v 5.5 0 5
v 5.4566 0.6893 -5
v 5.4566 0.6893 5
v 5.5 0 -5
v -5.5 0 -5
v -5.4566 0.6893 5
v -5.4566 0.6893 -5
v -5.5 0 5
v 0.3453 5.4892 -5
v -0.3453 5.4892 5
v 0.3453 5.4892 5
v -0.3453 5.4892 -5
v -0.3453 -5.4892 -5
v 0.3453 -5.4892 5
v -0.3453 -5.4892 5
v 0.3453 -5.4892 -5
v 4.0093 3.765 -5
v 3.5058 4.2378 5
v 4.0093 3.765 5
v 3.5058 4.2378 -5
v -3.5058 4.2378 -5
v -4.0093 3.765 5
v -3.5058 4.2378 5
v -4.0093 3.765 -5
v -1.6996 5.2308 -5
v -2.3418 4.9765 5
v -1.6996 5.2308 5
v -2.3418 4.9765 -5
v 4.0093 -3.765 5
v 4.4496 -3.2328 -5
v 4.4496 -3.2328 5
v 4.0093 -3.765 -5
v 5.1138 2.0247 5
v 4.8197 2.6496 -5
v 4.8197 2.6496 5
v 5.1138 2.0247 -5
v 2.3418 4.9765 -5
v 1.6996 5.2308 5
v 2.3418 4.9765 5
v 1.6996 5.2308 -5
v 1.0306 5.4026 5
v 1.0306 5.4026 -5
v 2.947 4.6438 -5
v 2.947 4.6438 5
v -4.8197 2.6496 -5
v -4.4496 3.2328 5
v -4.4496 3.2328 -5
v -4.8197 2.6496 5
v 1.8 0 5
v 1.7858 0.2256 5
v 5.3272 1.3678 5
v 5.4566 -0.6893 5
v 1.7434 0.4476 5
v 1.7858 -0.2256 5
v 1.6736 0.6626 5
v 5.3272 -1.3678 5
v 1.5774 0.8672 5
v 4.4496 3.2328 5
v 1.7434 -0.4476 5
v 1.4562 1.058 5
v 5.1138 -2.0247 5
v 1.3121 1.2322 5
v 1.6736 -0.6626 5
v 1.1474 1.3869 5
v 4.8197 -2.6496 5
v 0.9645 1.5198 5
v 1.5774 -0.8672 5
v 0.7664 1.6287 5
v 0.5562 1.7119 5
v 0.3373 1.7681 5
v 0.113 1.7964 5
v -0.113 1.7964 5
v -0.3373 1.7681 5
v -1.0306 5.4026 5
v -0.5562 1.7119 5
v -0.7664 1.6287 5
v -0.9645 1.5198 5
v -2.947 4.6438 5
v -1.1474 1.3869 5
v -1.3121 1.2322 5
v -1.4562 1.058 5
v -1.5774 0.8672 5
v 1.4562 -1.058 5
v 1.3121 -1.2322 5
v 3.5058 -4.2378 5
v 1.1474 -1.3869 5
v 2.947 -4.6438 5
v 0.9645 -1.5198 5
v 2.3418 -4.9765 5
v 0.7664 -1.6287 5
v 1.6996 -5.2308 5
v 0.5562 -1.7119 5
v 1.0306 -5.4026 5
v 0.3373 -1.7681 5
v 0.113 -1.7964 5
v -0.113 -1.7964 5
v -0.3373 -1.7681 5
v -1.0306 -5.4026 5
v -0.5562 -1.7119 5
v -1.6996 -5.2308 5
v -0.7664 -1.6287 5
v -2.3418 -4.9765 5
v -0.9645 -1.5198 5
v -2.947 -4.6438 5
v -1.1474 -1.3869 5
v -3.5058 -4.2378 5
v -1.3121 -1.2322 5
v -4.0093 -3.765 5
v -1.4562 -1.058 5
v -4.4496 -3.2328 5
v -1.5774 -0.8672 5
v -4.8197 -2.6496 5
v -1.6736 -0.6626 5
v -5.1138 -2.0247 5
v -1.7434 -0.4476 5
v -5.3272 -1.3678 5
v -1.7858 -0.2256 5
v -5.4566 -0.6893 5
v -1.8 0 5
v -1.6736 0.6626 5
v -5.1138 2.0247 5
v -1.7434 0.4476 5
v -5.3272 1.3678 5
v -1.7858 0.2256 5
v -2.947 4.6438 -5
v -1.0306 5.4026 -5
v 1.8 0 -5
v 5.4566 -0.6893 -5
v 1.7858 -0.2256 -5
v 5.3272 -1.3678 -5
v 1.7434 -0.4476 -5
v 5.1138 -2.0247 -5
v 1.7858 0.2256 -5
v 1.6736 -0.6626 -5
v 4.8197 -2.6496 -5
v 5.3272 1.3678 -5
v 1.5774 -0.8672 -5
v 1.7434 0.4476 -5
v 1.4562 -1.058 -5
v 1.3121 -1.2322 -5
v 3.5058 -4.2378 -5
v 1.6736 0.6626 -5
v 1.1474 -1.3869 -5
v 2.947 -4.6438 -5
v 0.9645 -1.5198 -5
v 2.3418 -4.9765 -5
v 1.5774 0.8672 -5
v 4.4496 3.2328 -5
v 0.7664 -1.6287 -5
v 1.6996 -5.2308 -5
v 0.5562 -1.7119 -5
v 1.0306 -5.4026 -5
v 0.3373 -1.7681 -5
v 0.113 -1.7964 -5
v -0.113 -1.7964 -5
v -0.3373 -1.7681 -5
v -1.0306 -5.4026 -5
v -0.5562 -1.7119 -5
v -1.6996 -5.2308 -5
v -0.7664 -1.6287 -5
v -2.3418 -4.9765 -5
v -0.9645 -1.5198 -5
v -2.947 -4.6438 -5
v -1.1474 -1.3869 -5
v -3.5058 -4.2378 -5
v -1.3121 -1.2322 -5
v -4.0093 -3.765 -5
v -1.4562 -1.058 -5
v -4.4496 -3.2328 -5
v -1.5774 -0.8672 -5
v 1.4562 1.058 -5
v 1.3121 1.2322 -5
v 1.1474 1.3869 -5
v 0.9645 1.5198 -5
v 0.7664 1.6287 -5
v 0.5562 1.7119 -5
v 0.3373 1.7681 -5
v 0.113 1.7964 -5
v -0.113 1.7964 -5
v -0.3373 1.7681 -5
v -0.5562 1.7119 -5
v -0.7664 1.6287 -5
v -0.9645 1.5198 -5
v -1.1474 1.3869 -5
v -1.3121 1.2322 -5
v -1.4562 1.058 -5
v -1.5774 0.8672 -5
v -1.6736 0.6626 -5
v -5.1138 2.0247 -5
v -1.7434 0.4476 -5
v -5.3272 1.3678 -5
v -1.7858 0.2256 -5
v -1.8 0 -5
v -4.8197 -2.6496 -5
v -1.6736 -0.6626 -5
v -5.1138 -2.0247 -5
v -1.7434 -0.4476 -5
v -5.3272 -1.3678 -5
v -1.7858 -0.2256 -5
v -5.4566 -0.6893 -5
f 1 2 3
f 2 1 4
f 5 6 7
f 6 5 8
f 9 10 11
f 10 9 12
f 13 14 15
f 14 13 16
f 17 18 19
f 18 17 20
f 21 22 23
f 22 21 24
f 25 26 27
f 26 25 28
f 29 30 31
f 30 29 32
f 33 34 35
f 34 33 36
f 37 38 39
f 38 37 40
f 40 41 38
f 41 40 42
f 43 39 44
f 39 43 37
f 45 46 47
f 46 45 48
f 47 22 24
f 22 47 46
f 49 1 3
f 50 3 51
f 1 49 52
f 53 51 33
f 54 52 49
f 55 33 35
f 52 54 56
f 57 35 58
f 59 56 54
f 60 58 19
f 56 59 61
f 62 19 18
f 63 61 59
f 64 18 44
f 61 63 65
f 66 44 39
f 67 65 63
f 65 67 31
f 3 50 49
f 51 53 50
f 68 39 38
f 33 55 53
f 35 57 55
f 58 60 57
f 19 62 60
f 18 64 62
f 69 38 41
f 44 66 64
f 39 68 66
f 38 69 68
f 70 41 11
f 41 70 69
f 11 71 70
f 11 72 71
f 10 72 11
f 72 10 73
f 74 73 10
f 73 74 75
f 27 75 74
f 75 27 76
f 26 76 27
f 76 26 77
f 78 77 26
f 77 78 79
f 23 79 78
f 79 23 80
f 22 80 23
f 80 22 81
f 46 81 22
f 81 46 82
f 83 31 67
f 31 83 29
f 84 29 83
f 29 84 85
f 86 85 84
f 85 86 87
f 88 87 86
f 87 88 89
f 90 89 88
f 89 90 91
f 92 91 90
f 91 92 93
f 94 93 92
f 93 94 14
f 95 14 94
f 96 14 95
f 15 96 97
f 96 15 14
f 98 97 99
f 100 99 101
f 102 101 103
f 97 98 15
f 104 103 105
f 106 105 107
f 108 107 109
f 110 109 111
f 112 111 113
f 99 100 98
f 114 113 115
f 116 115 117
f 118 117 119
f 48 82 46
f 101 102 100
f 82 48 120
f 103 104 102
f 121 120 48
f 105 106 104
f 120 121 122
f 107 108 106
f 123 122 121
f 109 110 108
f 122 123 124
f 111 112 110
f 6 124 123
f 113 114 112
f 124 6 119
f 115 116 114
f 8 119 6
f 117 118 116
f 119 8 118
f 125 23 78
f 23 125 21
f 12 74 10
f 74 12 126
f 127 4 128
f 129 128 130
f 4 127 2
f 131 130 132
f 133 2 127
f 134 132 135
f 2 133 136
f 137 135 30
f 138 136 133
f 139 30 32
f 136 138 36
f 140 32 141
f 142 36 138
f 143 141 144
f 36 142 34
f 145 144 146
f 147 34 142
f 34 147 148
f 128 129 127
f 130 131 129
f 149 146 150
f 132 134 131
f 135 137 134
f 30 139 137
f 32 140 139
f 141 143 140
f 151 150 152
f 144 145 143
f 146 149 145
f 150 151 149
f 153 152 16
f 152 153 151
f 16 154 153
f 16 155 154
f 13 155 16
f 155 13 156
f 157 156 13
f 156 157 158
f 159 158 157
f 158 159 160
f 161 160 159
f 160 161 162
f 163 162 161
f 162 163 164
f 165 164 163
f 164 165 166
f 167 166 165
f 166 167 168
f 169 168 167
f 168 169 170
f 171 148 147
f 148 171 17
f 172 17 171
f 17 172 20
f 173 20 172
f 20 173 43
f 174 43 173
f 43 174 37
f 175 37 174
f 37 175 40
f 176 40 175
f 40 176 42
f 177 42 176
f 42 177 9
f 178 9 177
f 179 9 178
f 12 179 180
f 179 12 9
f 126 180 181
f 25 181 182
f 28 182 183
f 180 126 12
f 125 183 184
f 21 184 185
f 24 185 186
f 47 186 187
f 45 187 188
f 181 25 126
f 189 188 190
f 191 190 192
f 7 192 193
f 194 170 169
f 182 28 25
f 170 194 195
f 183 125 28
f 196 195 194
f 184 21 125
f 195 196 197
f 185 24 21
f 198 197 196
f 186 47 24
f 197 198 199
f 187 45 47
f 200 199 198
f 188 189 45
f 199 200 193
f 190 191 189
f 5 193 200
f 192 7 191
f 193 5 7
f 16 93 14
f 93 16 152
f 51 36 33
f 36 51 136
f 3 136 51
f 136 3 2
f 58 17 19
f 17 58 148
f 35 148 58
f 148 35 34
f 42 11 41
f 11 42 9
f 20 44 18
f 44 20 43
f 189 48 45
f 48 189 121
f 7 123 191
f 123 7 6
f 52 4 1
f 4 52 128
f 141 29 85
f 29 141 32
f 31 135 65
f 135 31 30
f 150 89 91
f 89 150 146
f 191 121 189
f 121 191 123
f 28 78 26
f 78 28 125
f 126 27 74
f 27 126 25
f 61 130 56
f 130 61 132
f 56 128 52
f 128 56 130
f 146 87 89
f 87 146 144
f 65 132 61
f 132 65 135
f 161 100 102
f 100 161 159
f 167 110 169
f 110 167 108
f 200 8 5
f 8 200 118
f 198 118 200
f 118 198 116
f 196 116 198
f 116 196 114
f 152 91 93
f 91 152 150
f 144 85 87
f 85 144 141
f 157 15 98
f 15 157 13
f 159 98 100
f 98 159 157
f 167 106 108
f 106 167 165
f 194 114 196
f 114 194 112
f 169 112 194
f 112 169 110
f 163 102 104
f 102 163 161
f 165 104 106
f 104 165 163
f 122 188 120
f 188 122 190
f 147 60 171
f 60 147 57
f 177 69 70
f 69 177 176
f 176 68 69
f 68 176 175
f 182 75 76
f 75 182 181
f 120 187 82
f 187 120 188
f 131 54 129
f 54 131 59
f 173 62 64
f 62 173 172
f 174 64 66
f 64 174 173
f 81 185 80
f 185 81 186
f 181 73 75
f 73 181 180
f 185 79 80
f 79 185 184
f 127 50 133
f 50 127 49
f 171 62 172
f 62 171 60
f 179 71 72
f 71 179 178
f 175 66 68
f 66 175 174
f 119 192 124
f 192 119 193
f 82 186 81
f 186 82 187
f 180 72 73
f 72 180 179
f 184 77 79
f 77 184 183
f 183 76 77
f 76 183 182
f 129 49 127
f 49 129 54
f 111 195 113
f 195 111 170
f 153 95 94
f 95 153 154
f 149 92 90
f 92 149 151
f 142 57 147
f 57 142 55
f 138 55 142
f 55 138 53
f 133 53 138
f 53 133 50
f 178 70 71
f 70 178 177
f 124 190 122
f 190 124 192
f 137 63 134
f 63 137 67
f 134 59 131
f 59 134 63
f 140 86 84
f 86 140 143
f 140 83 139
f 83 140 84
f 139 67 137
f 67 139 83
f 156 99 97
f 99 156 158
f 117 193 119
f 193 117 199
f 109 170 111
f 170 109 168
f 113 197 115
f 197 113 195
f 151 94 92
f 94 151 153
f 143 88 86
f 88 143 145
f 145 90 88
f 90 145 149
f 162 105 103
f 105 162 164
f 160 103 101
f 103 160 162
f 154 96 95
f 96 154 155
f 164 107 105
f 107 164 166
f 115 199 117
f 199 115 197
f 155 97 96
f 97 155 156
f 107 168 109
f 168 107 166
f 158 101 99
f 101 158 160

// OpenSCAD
$fn = 50;


difference() {
	union() {
		translate(v = [0, 0, -5.0000000000]) {
			cylinder(h = 10, r = 5.5000000000);
		}
	}
	union() {
		translate(v = [0, 0, -100.0000000000]) {
			cylinder(h = 200, r = 1.8000000000);
		}
	}
}
